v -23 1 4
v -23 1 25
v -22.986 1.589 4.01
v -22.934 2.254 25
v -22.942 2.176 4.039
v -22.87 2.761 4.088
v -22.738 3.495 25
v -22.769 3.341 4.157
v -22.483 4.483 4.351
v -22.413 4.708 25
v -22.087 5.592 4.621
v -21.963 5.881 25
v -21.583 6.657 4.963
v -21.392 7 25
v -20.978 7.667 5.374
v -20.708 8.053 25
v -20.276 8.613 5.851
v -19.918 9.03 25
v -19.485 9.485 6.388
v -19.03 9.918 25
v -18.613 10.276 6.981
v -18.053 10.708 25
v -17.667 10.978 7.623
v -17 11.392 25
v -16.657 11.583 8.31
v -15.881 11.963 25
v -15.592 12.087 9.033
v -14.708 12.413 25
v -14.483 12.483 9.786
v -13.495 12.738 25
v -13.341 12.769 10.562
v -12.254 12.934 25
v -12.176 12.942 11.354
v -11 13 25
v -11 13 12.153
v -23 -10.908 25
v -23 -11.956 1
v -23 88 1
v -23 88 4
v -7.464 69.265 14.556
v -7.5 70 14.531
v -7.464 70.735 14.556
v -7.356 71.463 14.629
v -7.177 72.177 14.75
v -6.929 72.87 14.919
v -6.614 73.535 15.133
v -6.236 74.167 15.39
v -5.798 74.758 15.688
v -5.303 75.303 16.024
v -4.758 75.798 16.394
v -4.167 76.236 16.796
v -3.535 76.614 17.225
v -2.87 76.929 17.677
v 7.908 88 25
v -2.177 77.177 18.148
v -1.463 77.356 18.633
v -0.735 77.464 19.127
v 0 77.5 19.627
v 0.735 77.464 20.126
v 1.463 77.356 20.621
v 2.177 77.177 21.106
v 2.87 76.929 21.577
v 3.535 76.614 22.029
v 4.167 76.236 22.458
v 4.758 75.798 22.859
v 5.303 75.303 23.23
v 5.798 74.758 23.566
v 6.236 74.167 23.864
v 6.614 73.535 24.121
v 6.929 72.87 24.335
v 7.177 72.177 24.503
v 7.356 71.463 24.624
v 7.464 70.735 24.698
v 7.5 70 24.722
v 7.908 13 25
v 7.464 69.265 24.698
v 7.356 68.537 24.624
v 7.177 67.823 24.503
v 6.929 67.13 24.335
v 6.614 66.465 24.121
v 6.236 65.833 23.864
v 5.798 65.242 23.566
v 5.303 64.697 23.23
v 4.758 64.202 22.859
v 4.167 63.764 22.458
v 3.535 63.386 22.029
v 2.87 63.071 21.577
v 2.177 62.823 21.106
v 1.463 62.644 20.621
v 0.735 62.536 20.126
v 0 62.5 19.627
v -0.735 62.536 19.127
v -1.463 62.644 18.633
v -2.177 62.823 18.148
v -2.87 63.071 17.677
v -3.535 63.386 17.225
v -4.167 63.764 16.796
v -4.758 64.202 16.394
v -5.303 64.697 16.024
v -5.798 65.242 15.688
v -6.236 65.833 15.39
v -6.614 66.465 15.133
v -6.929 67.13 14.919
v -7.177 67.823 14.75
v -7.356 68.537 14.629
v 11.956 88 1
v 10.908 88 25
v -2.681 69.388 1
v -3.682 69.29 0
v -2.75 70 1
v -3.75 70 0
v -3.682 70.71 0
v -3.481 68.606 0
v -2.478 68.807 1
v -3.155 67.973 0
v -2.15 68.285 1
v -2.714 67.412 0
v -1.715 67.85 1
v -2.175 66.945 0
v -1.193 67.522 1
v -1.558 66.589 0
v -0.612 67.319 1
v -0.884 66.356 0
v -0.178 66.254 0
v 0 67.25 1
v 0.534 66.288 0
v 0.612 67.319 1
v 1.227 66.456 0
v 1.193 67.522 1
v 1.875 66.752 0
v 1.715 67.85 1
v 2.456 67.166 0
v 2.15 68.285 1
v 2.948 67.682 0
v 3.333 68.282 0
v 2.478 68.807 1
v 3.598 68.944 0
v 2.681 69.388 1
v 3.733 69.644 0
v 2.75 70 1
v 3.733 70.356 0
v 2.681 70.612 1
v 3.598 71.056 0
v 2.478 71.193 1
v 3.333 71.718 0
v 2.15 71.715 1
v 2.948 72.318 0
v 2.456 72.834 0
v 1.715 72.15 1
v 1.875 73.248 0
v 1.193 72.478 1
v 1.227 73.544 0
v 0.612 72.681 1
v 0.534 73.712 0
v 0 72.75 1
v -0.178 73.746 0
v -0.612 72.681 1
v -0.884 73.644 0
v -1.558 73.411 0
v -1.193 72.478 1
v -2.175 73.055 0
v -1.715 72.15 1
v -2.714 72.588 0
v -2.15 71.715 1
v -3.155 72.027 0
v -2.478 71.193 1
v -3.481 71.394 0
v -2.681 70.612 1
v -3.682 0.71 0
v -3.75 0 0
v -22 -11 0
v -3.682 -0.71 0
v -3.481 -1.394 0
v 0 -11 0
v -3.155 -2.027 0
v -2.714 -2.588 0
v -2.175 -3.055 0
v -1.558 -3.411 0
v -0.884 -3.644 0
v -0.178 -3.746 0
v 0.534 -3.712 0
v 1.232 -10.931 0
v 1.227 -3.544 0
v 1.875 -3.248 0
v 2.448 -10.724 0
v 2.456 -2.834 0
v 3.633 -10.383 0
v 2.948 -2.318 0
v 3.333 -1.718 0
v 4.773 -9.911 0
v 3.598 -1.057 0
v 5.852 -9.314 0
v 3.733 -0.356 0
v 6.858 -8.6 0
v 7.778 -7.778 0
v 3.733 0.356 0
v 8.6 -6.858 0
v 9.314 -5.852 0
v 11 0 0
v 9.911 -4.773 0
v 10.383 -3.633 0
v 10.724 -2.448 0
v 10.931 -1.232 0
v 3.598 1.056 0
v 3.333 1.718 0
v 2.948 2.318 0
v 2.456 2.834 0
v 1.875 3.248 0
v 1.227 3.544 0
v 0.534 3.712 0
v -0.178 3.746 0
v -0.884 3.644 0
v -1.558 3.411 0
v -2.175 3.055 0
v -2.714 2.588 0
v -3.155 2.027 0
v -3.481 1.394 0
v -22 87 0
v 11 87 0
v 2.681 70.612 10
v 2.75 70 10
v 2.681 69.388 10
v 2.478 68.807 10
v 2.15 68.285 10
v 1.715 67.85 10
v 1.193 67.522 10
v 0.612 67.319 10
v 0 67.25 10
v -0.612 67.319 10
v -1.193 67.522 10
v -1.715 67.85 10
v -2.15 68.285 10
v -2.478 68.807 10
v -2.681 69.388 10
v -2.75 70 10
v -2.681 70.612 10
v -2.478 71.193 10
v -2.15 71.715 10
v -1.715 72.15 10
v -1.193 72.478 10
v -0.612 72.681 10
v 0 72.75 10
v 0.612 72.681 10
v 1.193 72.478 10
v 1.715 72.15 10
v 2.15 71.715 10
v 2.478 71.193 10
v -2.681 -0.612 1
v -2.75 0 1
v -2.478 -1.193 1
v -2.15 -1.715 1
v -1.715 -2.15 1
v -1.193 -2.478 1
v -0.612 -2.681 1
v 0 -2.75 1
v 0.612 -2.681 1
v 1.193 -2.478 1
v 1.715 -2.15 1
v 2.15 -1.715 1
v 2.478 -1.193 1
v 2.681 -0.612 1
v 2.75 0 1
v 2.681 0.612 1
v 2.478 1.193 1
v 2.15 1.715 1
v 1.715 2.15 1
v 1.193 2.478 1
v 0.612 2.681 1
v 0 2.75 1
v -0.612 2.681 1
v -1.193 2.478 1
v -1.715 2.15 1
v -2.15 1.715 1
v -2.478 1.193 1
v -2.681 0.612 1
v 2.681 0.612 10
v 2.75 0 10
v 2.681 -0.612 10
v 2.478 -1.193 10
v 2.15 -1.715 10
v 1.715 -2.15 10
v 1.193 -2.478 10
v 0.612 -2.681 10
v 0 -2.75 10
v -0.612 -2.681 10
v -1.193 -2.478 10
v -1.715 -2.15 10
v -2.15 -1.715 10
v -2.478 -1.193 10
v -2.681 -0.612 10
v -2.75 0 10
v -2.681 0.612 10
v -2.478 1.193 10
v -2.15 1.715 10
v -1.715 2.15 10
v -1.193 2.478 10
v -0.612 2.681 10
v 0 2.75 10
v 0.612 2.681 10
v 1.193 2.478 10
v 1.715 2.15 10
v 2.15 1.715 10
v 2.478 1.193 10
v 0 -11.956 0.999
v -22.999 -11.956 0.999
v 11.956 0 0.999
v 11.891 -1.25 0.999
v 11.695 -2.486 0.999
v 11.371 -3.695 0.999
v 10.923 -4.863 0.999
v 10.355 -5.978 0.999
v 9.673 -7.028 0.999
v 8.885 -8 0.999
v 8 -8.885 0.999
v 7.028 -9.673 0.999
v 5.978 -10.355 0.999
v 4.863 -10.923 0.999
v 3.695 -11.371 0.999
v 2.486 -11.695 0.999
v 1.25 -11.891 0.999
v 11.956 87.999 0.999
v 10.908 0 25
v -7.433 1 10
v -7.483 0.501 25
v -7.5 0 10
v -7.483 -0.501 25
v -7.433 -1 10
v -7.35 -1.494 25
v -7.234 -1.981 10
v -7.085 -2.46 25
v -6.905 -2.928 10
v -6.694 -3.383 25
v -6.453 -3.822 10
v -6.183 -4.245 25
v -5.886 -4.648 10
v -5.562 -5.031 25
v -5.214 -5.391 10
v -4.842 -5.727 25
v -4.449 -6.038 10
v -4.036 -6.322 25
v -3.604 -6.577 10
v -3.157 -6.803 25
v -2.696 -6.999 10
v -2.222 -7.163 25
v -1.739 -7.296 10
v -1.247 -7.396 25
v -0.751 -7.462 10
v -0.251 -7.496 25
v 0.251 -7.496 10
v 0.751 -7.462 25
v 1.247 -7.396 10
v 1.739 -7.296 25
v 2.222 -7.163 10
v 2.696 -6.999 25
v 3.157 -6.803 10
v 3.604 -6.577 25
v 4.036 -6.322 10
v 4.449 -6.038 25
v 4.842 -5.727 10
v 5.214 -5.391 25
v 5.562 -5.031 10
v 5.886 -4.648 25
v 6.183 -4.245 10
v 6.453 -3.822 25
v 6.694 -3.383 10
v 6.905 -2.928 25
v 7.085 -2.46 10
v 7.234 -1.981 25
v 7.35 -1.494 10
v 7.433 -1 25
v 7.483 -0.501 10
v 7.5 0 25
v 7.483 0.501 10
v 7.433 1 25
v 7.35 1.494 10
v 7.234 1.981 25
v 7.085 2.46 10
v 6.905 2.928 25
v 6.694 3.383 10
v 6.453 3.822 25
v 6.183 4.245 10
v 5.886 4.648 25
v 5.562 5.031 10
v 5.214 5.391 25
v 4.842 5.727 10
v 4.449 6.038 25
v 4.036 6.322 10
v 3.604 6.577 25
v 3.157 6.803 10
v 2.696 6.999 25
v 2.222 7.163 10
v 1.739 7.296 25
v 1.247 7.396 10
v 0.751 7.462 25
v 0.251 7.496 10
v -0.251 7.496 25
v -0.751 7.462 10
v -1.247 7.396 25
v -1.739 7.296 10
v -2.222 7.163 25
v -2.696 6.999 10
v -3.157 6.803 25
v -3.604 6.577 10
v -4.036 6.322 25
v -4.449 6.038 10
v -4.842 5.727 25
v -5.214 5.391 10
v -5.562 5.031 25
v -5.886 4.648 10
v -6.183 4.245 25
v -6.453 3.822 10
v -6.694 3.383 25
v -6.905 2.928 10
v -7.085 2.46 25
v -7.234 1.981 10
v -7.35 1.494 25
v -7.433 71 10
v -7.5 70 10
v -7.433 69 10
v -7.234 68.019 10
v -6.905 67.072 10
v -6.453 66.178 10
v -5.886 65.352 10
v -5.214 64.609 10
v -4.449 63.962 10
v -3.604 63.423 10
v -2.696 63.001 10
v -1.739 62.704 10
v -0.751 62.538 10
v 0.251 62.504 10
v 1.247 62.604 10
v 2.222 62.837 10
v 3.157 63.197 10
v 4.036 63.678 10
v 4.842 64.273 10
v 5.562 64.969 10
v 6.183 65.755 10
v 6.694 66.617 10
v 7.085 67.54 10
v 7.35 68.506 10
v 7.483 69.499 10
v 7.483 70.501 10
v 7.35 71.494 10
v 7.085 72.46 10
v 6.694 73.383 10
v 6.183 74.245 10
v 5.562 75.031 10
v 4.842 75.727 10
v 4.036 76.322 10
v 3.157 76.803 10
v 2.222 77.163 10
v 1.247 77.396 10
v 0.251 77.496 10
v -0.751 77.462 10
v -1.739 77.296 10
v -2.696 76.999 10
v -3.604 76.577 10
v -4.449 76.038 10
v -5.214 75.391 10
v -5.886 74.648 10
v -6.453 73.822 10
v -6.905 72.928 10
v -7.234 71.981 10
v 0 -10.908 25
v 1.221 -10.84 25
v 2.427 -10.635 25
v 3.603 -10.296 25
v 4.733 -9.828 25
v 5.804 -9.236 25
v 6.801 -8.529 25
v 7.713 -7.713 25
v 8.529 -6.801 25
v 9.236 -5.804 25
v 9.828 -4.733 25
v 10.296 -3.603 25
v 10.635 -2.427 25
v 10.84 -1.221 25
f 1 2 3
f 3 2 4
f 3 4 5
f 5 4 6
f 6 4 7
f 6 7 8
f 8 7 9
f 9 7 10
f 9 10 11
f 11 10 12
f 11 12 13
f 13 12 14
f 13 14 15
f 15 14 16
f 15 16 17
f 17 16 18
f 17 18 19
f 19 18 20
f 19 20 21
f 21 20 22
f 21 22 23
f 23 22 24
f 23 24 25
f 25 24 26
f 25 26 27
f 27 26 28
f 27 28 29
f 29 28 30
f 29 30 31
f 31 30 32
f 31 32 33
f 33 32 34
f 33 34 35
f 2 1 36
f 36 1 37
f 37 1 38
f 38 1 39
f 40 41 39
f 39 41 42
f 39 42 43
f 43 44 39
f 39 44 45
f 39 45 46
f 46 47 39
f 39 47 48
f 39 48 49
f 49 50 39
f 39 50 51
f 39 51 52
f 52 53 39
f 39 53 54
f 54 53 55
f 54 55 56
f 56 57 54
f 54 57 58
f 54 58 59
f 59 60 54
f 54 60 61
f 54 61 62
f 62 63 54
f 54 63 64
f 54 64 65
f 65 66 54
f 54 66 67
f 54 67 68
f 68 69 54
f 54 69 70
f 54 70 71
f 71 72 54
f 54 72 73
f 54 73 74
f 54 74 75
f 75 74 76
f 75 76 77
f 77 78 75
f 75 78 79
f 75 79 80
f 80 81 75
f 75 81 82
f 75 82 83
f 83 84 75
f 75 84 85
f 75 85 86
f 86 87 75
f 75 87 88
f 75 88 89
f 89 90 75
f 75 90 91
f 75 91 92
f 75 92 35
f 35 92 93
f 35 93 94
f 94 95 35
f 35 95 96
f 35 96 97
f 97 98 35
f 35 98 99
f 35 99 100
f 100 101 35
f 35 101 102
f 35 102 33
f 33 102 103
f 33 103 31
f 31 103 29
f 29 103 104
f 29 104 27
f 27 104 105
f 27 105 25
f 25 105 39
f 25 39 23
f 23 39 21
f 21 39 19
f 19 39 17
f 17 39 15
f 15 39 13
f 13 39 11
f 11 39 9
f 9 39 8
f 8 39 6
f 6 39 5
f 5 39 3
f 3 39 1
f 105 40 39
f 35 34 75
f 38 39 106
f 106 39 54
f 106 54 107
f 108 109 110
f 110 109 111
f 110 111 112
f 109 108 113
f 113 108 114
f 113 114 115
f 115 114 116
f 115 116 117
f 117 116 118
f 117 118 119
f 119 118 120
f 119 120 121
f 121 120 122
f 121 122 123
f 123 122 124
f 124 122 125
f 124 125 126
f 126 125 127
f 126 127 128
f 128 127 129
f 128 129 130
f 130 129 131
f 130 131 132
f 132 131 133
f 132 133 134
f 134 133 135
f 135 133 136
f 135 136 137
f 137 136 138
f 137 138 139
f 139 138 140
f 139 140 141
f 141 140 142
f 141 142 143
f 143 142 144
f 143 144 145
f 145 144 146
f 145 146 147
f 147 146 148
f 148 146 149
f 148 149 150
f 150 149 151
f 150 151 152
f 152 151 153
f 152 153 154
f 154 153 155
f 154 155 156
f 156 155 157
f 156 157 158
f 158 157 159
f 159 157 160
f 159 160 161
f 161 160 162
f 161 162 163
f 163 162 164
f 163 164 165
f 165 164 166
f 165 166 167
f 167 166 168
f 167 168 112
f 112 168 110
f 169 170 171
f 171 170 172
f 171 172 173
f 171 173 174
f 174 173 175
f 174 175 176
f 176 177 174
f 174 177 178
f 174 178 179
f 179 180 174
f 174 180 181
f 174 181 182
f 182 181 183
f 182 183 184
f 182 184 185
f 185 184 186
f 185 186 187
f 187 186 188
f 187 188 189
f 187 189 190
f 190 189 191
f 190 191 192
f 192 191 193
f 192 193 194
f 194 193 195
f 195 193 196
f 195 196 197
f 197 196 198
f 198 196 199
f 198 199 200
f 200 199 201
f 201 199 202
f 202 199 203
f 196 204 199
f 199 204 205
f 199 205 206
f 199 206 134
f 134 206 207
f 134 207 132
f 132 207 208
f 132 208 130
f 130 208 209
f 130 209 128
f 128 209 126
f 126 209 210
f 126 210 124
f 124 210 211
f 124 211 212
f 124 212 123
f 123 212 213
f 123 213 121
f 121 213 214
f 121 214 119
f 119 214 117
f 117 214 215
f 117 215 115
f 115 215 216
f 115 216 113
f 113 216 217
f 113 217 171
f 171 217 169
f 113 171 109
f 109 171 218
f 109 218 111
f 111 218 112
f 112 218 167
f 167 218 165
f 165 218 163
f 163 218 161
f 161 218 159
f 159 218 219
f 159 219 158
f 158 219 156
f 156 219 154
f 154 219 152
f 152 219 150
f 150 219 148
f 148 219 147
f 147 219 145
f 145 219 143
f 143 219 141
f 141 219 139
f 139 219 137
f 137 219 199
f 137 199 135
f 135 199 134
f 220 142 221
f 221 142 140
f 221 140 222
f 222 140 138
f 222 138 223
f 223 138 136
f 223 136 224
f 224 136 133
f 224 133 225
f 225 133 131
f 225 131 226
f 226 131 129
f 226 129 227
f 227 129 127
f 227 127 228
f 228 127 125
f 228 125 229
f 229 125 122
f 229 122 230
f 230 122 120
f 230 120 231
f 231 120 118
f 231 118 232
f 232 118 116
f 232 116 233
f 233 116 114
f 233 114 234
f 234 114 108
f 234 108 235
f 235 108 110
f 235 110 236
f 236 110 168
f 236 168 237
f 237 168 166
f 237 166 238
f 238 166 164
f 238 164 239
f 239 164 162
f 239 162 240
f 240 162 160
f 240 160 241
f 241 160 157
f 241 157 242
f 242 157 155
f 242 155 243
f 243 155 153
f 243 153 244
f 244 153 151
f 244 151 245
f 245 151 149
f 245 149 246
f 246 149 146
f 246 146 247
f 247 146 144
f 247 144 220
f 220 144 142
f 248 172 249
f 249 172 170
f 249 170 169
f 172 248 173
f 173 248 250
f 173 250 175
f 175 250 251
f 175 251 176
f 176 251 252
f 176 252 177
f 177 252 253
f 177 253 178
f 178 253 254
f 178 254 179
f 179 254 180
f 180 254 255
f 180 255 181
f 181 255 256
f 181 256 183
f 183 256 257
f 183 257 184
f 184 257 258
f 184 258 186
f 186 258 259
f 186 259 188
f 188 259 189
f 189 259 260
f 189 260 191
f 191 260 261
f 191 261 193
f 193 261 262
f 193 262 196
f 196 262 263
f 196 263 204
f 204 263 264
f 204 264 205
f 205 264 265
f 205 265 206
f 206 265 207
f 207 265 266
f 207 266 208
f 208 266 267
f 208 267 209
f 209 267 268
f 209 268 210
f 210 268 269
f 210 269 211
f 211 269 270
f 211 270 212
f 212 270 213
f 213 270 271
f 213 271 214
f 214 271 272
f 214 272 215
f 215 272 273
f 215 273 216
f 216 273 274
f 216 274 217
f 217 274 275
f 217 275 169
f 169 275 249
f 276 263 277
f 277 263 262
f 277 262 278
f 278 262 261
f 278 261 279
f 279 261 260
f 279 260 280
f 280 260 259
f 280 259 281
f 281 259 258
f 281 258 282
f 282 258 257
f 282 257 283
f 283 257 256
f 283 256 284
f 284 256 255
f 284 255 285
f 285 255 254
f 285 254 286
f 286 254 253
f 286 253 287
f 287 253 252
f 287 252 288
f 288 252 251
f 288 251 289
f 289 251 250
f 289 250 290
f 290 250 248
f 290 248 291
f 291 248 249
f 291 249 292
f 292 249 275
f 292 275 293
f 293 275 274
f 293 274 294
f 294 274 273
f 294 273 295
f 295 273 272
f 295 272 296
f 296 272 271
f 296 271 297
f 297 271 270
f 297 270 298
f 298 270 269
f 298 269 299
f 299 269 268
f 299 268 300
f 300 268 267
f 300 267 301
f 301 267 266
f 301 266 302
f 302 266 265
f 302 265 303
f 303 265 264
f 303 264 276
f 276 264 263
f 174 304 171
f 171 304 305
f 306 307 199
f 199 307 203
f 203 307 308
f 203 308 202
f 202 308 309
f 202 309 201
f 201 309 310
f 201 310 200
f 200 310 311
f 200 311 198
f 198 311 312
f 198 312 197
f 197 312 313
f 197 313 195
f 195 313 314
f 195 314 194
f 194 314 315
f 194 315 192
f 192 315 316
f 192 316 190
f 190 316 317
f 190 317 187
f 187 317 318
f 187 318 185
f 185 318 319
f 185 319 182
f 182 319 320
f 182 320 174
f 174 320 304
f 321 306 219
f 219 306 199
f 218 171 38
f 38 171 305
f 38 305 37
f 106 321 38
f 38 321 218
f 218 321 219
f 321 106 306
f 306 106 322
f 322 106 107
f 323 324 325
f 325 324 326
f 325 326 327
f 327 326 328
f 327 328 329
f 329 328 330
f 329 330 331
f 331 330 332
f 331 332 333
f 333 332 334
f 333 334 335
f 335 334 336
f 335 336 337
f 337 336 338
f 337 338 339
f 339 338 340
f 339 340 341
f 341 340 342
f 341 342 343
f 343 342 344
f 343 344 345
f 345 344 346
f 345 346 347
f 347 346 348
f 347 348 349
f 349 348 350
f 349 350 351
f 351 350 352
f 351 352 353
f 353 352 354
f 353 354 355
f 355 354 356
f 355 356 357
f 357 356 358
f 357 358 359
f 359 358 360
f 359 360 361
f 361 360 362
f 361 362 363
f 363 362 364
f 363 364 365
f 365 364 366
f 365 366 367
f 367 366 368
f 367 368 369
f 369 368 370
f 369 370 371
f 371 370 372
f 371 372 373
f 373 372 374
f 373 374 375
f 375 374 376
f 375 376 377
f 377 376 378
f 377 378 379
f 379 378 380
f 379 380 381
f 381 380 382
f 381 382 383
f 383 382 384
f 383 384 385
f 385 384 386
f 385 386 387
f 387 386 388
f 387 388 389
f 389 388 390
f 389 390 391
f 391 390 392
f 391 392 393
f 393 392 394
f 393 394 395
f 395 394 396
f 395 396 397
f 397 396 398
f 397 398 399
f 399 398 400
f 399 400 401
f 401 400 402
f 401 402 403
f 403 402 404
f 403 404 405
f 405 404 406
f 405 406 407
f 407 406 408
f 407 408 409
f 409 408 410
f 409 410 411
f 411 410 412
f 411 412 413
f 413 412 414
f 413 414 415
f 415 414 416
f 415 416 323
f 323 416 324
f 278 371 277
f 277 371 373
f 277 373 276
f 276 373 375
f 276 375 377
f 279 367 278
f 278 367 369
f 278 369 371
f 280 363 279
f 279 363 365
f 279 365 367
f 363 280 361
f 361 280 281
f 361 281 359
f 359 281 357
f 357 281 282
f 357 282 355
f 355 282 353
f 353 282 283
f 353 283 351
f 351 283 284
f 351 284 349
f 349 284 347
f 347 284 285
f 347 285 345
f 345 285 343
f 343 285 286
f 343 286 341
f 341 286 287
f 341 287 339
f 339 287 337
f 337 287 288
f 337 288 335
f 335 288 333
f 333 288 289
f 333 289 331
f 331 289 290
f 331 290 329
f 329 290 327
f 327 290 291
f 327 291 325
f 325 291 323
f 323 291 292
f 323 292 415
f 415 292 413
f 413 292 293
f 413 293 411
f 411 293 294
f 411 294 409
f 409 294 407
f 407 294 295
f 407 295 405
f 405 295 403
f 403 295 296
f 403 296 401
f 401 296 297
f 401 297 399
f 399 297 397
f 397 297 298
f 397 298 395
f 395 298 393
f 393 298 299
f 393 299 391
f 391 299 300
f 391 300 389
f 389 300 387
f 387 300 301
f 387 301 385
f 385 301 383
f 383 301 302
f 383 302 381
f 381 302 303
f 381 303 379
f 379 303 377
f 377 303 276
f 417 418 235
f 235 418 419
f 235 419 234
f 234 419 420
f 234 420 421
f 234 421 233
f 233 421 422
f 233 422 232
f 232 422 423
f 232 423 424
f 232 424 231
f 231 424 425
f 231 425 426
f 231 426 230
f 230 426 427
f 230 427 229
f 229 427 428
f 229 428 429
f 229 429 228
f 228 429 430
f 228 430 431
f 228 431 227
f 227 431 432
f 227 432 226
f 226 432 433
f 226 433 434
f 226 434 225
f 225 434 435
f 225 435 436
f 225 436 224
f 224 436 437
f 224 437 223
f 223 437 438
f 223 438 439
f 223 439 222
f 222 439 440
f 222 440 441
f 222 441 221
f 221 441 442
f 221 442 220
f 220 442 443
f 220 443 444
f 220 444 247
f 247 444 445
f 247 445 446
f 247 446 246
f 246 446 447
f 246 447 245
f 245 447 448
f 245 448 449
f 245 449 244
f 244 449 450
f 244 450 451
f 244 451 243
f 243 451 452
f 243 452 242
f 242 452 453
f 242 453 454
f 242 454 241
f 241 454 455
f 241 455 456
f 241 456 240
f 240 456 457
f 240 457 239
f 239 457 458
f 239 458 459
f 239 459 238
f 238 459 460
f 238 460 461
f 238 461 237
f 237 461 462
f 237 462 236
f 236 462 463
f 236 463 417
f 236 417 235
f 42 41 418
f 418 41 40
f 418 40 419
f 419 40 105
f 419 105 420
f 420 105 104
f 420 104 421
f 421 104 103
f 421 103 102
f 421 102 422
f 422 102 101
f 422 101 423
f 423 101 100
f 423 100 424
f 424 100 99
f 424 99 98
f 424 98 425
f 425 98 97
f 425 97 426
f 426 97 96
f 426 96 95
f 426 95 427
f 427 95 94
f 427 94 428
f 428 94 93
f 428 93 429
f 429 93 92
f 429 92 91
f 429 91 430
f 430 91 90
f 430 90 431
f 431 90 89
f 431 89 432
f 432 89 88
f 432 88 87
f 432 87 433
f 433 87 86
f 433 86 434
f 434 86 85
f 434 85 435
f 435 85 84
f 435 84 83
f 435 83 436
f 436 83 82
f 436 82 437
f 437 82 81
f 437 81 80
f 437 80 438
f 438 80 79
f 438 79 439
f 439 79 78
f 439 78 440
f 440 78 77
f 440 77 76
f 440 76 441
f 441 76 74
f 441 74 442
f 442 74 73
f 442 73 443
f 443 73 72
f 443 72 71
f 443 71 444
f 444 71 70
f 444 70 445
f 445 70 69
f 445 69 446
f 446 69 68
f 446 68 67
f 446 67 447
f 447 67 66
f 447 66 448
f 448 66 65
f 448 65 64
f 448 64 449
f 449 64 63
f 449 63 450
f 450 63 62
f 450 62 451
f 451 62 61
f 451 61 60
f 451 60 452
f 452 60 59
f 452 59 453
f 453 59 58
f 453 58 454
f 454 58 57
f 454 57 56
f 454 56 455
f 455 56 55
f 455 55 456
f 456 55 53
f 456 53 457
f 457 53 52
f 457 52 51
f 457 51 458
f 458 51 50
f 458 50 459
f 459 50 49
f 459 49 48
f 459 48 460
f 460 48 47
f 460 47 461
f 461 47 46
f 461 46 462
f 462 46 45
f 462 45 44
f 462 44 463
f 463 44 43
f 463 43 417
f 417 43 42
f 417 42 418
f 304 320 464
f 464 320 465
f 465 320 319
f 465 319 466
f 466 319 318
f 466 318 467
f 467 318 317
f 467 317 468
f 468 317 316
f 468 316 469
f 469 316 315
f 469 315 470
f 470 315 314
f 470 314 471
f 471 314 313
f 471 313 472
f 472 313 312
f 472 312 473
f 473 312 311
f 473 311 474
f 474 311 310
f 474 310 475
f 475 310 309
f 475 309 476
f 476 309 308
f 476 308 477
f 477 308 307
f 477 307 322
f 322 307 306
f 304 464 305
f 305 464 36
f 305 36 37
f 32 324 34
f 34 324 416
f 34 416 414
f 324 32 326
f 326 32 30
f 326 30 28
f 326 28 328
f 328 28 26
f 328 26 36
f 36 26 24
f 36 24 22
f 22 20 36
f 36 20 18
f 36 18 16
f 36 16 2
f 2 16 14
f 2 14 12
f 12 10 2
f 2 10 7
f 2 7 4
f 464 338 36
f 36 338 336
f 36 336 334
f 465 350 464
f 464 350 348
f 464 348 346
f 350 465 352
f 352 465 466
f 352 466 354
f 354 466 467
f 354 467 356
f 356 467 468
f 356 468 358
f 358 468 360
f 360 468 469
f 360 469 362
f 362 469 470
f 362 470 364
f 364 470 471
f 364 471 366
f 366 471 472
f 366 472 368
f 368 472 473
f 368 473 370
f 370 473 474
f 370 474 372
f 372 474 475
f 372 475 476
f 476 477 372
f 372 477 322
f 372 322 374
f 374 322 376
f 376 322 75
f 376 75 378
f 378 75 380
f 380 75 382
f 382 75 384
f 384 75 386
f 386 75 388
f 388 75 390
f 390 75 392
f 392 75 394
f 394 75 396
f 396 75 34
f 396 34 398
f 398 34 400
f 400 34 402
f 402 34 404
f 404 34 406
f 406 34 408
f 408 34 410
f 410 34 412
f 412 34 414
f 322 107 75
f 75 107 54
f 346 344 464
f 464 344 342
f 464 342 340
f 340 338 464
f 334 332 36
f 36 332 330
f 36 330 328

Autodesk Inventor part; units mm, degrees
ref_plane "YZ Plane" through (0, 0, 0) normal (1, 0, 0) x (0, 1, 0)
ref_plane "XZ Plane" through (0, 0, 0) normal (0, 1, 0) x (-1, 0, 0)
ref_plane "XY Plane" through (0, 0, 0) normal (0, 0, 1) x (1, 0, 0)
sketch "Sketch1" plane through (0, 0, 0) normal (0, 0, 1) x (1, 0, 0)
  circle A0 centre (0, 0) radius 12
  line L0 (12, 0) -> (12, 88)
  line L1 (12, 88) -> (-23, 88)
  line L2 (-23, 88) -> (-23, -12)
  line L3 (-23, -12) -> (0, -12)
  dimension "d0" = 24
  dimension "d1" = 100
  dimension "d2" = 35
extrude "Extrusion1" add sketch "Sketch1" along normal blind 25
draft "FaceDraft1" angle 2.5 pull direction (0, 0, 1) faces at (-15.3333, -12, 16.6667) (11.866, -1.7885, 16.6667) (12, 29.3333, 16.6667) fixed edges at (-11.5, -12, 0) (8.4853, -8.4853, 0) (12, 44, 0)
sketch "Sketch2" plane through (0, 0, 0) normal (0, 0, -1) x (-1, 0, 0)
  circle A0 centre (0, 0) radius 2.75
  line L0 (0, 0) -> (0, 102) construction
  circle A1 centre (0, 70) radius 2.75
  dimension "d6" = 5.5
  dimension "d16" = 70
  dimension "d17" = 5.5
extrude "Extrusion2" cut sketch "Sketch2" against normal through all
ref_plane "Work Plane1" through (0, 0, 10) normal (0, 0, -1) x (-1, 0, 0)
sketch "Sketch3" plane through (0, 0, 25) normal (0, 0, 1) x (1, 0, 0)
  circle A0 centre (0, 0) radius 2.75 projected
  circle A1 centre (0, 0) radius 7.5
  circle A2 centre (0, 70) radius 2.75 projected
  circle A3 centre (0, 70) radius 2.75 projected
  circle A4 centre (0, 70) radius 7.5
  dimension "d10" = 15
  dimension "d18" = 15
extrude "Extrusion3" cut sketch "Sketch3" against normal up to surface (15 mm away)
chamfer "Chamfer1" distance 1 angle 45 7 edges at (8.4853, -8.4853, 0) (12, 44, 0) (-11.5, -12, 0) (2.75, 0, 0) (-5.5, 88, 0) (-23, 38, 0) (2.75, 70, 0)
sketch "Sketch4" plane through (-23, 88, 25) normal (0, 1, 0) x (1, 0, 0)
  line L0 (33.9085, 0) -> (0, 0) projected
  line L1 (0, 24) -> (0, 0) projected
  line L2 (0, 24) -> (0, 21)
  line L3 (0, 24) -> (0, 0) projected
  line L4 (34.9564, 24.001) -> (33.9085, 0) projected
  line L5 (33.9085, 0) -> (30.9085, 0)
  line L6 (23, 0) -> (33.9085, 0) projected
  line L7 (0, 21) -> (30.9085, 0)
  point P0 (30.9085, 0)
  dimension "d20" = 3
extrude "Extrusion4" cut sketch "Sketch4" against normal blind 75
fillet "Fillet1" radius 12 1 edges at (-23, 13, 14.5)
equation "\"d17\" = d6"
equation "\"d18\" = d10"
properties part number "Holder_3DPrint"
